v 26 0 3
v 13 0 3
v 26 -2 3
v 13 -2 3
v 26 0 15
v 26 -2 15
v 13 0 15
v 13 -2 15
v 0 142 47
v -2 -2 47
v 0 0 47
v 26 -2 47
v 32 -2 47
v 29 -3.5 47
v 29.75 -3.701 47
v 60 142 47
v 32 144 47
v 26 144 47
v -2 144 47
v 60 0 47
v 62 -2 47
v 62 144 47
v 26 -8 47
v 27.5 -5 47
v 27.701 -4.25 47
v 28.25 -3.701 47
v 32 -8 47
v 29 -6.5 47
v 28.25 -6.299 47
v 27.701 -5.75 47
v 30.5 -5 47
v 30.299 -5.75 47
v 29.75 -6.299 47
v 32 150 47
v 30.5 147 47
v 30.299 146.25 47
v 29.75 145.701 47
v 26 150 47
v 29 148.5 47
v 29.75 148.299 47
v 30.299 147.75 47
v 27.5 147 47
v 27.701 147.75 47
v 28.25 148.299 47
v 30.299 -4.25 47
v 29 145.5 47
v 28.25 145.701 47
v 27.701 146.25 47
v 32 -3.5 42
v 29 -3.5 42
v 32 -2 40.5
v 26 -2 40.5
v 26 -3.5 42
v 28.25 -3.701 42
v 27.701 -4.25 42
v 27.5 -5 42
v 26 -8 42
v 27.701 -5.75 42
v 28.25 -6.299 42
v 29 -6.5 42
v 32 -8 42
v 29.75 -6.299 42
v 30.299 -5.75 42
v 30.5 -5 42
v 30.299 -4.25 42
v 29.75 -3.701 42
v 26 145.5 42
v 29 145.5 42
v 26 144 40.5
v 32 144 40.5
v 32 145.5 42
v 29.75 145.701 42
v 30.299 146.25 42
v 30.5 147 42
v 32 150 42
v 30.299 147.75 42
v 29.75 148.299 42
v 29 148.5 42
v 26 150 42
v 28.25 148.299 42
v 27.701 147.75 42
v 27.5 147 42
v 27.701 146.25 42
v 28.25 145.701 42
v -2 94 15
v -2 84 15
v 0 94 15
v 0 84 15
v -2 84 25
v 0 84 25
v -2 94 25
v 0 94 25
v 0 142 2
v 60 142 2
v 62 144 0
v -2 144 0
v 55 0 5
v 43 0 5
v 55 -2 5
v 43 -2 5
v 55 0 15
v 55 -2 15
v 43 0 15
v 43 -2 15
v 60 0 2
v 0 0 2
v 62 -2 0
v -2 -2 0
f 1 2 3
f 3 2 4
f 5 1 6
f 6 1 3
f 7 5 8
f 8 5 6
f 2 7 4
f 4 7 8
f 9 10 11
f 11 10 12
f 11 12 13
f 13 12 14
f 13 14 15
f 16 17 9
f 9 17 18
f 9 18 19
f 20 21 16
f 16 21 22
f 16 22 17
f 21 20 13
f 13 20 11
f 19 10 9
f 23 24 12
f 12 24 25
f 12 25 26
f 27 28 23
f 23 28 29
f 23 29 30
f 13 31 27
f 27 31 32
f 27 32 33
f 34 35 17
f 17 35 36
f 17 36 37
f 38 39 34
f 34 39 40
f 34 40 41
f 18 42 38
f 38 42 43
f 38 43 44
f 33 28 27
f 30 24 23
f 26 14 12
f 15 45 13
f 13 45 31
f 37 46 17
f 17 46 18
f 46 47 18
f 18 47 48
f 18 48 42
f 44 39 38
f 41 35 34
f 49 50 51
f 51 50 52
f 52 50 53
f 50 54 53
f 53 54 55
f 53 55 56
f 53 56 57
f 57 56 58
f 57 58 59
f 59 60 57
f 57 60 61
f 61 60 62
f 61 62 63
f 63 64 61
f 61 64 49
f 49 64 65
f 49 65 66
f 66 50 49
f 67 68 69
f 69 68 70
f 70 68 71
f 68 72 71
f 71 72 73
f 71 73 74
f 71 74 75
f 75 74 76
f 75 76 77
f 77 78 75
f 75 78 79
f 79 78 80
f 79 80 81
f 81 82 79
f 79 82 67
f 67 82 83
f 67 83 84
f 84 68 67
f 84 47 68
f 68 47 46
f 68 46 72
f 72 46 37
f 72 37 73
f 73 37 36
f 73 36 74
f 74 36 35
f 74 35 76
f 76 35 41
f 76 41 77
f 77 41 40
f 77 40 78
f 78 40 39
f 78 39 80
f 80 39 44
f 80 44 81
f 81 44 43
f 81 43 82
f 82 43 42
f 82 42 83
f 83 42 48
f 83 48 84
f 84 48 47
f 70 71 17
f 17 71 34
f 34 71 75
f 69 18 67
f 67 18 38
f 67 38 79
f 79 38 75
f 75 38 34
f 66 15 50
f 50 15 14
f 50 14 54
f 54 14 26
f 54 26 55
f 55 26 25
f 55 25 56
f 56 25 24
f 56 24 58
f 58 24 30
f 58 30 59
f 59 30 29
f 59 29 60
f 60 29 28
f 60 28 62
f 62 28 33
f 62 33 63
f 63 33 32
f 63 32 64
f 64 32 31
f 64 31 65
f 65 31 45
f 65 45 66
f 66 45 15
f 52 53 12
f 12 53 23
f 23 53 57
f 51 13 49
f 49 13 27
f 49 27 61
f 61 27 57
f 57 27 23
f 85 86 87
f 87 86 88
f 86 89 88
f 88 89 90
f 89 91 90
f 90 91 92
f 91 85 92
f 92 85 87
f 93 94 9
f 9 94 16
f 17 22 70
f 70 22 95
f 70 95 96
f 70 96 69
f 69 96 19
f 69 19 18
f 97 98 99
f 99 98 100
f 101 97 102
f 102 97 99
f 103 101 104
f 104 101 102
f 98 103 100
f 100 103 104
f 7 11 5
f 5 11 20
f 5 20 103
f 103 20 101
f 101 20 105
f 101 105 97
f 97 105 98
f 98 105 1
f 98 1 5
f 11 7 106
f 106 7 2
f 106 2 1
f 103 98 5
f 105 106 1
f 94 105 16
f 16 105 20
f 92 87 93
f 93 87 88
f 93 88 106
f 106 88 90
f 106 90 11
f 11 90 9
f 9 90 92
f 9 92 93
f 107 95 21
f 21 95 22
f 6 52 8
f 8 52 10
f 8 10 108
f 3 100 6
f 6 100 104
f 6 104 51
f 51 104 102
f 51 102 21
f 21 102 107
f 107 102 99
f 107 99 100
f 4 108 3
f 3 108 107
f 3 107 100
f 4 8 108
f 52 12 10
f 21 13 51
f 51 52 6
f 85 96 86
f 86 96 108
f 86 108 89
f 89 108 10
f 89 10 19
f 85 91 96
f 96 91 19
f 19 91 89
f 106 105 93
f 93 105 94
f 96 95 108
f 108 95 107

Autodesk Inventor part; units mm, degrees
ref_plane "YZ Plane" through (0, 0, 0) normal (1, 0, 0) x (0, 1, 0)
ref_plane "XZ Plane" through (0, 0, 0) normal (0, 1, 0) x (-1, 0, 0)
ref_plane "XY Plane" through (0, 0, 0) normal (0, 0, 1) x (1, 0, 0)
sketch "Esboço1" plane through (0, 0, 0) normal (0, 0, 1) x (1, 0, 0)
  line L0 (0, 0) -> (60, 0)
  line L1 (60, 0) -> (60, 110)
  line L2 (60, 110) -> (0, 110)
  line L3 (0, 110) -> (0, 0)
  line L4 (62, 112) -> (62, -2)
  line L5 (62, -2) -> (-2, -2)
  line L6 (-2, -2) -> (-2, 112)
  line L7 (-2, 112) -> (62, 112)
  dimension "d0" = 60
  dimension "d1" = 110
  dimension "d2" = 2
extrude "Extrusão1" add sketch "Esboço1" along normal blind 2 contours L3 L2 L1 L0 | L4 L5 L6 L7
sketch "Esboço2" plane through (0, 0, 2) normal (0, 0, 1) x (1, 0, 0)
  line L0 (62, 112) -> (-2, 112) projected
  line L1 (-2, 112) -> (-2, -2) projected
  line L2 (62, -2) -> (62, 112) projected
  line L3 (-2, -2) -> (62, -2) projected
  line L4 (0, 0) -> (0, 110)
  line L5 (0, 110) -> (60, 110)
  line L6 (60, 110) -> (60, 0)
  line L7 (60, 0) -> (0, 0)
  point P0 (0, 0)
  dimension "d5" = 2
extrude "Extrusão2" add sketch "Esboço2" along normal blind 45
sketch "Esboço3" plane through (-2, -2, 0) normal (0, -1, 0) x (1, 0, 0)
  line L0 (45, 5) -> (57, 5)
  line L1 (57, 5) -> (57, 15)
  line L2 (57, 15) -> (45, 15)
  line L3 (45, 15) -> (45, 5)
  line L4 (0, 0) -> (64, 0) projected
  line L5 (64, 0) -> (64, 47) projected
  point P0 (2, 0)
  dimension "d8" = 10
  dimension "d9" = 12
  dimension "d10" = 5
  dimension "d11" = 7
extrude "Extrusão3" cut sketch "Esboço3" against normal blind 38
sketch "Esboço11" plane through (-2, 112, 0) normal (0, 1, 0) x (1, 0, 0)
  line L0 (64, 0) -> (64, -47) projected
  line L1 (0, 0) -> (64, 0)
  line L2 (64, 0) -> (64, -2)
  line L3 (64, -2) -> (0, -2)
  line L4 (0, -2) -> (0, 0)
  line L5 (64, 0) -> (0, 0) projected
  point P0 (2, 0)
  dimension "d45" = 2
  dimension "d46" = 0
  dimension "d47" = 64
extrude "Extrusão8" add sketch "Esboço11" along normal blind 32
sketch "Esboço18" plane through (-2, 112, 2) normal (0, 0, 1) x (1, 0, 0)
  line L0 (0, 0) -> (64, 0) projected
  line L1 (64, 32) -> (64, 0) projected
  line L2 (0, 32) -> (64, 32) projected
  line L3 (0, 0) -> (0, 32) projected
  line L4 (0, -114) -> (0, 0) projected
  line L5 (64, -114) -> (0, -114) projected
  line L6 (64, 0) -> (64, -114) projected
  line L7 (2, -112) -> (62, -112) projected
  line L8 (62, -112) -> (62, -2) projected
  line L9 (62, -2) -> (2, -2) projected
  line L10 (2, -2) -> (2, -112) projected
  line L11 (62, 0) -> (62, 30)
  line L12 (62, 30) -> (2, 30)
  line L13 (2, 30) -> (2, 0)
  dimension "d89" = 2
extrude "Extrusão15" add sketch "Esboço18" along normal blind 45 contours L3 L2 L1 L0 L11 L12 L13
sketch "Esboço20" plane through (-2, -2, 0) normal (-1, 0, 0) x (0, 0, 1)
  line L0 (25, 86) -> (15, 86)
  line L1 (15, 86) -> (15, 96)
  line L2 (15, 96) -> (25, 96)
  line L3 (25, 96) -> (25, 86)
  line L4 (0, 146) -> (47, 146) projected
  line L5 (0, 146) -> (0, 0) projected
  point P0 (0, 2)
  dimension "d101" = 10
  dimension "d102" = 10
  dimension "d103" = 50
  dimension "d104" = 15
extrude "Extrusão17" cut sketch "Esboço20" against normal blind 2
sketch "Esboço21" plane through (-2, -2, 0) normal (0, -1, 0) x (1, 0, 0)
  line L0 (62, 47) -> (2, 47) projected
  line L1 (28, 47) -> (34, 47)
  line L2 (34, 47) -> (34, 42)
  line L3 (34, 42) -> (28, 42)
  line L4 (28, 42) -> (28, 47)
  line L5 (64, 0) -> (64, 47) projected
  point P0 (2, 0)
  dimension "d108" = 6
  dimension "d109" = 5
  dimension "d110" = 30
extrude "Extrusão18" add sketch "Esboço21" along normal blind 6
sketch "Esboço22" plane through (0, 0, 47) normal (0, 0, 1) x (1, 0, 0)
  circle A0 centre (29, -5) radius 1.5
  line L0 (32, -2) -> (32, -8) projected
  line L1 (32, -8) -> (26, -8) projected
  point P0 (0, 0)
  dimension "d113" = 3
  dimension "d114" = 3
  dimension "d115" = 3
extrude "Extrusão19" cut sketch "Esboço22" against normal blind 6
sketch "Esboço23" plane through (-2, 144, 0) normal (0, 1, 0) x (1, 0, 0)
  line L0 (64, 0) -> (64, -47) projected
  line L1 (64, -47) -> (0, -47) projected
  line L2 (0, -47) -> (0, 0) projected
  line L3 (0, 0) -> (64, 0) projected
  line L4 (34, -42) -> (28, -42) projected
  line L5 (28, -42) -> (28, -47) projected
  line L6 (34, -47) -> (34, -42) projected
  point P0 (2, 0)
extrude "Extrusão20" add sketch "Esboço23" along normal blind 6 contours L1 L5 L4 L6
sketch "Esboço24" plane through (0, 0, 47) normal (0, 0, 1) x (1, 0, 0)
  circle A0 centre (29, 147) radius 1.5
  line L0 (26, 150) -> (32, 150) projected
  line L1 (32, 144) -> (32, 150) projected
  point P0 (0, 0)
  dimension "d120" = 3
  dimension "d121" = 3
  dimension "d122" = 3
extrude "Extrusão21" cut sketch "Esboço24" against normal blind 6
chamfer "Chanfro2" distance 1.5 angle 45 2 edges at (29, 144, 42) (29, -2, 42)
sketch "Esboço25" plane through (0, 0, 47) normal (0, 0, 1) x (1, 0, 0)
  line L0 (0, 0) -> (0, 110) projected
  line L1 (0, 110) -> (60, 110)
  line L2 (60, 110) -> (60, 112)
  line L3 (60, 112) -> (0, 112)
  line L4 (0, 112) -> (0, 110)
extrude "Extrusão22" cut sketch "Esboço25" against normal blind 45
sketch "Esboço26" plane through (-2, -2, 0) normal (0, -1, 0) x (1, 0, 0)
  line L0 (15, 3) -> (28, 3)
  line L1 (28, 3) -> (28, 15)
  line L2 (28, 15) -> (15, 15)
  line L3 (15, 15) -> (15, 3)
  line L4 (0, 0) -> (0, 47) projected
  line L5 (0, 0) -> (64, 0) projected
  point P0 (2, 0)
  dimension "d130" = 13
  dimension "d131" = 12
  dimension "d132" = 15
  dimension "d133" = 3
extrude "Extrusão23" cut sketch "Esboço26" against normal blind 10
properties part number "basecaixa"
